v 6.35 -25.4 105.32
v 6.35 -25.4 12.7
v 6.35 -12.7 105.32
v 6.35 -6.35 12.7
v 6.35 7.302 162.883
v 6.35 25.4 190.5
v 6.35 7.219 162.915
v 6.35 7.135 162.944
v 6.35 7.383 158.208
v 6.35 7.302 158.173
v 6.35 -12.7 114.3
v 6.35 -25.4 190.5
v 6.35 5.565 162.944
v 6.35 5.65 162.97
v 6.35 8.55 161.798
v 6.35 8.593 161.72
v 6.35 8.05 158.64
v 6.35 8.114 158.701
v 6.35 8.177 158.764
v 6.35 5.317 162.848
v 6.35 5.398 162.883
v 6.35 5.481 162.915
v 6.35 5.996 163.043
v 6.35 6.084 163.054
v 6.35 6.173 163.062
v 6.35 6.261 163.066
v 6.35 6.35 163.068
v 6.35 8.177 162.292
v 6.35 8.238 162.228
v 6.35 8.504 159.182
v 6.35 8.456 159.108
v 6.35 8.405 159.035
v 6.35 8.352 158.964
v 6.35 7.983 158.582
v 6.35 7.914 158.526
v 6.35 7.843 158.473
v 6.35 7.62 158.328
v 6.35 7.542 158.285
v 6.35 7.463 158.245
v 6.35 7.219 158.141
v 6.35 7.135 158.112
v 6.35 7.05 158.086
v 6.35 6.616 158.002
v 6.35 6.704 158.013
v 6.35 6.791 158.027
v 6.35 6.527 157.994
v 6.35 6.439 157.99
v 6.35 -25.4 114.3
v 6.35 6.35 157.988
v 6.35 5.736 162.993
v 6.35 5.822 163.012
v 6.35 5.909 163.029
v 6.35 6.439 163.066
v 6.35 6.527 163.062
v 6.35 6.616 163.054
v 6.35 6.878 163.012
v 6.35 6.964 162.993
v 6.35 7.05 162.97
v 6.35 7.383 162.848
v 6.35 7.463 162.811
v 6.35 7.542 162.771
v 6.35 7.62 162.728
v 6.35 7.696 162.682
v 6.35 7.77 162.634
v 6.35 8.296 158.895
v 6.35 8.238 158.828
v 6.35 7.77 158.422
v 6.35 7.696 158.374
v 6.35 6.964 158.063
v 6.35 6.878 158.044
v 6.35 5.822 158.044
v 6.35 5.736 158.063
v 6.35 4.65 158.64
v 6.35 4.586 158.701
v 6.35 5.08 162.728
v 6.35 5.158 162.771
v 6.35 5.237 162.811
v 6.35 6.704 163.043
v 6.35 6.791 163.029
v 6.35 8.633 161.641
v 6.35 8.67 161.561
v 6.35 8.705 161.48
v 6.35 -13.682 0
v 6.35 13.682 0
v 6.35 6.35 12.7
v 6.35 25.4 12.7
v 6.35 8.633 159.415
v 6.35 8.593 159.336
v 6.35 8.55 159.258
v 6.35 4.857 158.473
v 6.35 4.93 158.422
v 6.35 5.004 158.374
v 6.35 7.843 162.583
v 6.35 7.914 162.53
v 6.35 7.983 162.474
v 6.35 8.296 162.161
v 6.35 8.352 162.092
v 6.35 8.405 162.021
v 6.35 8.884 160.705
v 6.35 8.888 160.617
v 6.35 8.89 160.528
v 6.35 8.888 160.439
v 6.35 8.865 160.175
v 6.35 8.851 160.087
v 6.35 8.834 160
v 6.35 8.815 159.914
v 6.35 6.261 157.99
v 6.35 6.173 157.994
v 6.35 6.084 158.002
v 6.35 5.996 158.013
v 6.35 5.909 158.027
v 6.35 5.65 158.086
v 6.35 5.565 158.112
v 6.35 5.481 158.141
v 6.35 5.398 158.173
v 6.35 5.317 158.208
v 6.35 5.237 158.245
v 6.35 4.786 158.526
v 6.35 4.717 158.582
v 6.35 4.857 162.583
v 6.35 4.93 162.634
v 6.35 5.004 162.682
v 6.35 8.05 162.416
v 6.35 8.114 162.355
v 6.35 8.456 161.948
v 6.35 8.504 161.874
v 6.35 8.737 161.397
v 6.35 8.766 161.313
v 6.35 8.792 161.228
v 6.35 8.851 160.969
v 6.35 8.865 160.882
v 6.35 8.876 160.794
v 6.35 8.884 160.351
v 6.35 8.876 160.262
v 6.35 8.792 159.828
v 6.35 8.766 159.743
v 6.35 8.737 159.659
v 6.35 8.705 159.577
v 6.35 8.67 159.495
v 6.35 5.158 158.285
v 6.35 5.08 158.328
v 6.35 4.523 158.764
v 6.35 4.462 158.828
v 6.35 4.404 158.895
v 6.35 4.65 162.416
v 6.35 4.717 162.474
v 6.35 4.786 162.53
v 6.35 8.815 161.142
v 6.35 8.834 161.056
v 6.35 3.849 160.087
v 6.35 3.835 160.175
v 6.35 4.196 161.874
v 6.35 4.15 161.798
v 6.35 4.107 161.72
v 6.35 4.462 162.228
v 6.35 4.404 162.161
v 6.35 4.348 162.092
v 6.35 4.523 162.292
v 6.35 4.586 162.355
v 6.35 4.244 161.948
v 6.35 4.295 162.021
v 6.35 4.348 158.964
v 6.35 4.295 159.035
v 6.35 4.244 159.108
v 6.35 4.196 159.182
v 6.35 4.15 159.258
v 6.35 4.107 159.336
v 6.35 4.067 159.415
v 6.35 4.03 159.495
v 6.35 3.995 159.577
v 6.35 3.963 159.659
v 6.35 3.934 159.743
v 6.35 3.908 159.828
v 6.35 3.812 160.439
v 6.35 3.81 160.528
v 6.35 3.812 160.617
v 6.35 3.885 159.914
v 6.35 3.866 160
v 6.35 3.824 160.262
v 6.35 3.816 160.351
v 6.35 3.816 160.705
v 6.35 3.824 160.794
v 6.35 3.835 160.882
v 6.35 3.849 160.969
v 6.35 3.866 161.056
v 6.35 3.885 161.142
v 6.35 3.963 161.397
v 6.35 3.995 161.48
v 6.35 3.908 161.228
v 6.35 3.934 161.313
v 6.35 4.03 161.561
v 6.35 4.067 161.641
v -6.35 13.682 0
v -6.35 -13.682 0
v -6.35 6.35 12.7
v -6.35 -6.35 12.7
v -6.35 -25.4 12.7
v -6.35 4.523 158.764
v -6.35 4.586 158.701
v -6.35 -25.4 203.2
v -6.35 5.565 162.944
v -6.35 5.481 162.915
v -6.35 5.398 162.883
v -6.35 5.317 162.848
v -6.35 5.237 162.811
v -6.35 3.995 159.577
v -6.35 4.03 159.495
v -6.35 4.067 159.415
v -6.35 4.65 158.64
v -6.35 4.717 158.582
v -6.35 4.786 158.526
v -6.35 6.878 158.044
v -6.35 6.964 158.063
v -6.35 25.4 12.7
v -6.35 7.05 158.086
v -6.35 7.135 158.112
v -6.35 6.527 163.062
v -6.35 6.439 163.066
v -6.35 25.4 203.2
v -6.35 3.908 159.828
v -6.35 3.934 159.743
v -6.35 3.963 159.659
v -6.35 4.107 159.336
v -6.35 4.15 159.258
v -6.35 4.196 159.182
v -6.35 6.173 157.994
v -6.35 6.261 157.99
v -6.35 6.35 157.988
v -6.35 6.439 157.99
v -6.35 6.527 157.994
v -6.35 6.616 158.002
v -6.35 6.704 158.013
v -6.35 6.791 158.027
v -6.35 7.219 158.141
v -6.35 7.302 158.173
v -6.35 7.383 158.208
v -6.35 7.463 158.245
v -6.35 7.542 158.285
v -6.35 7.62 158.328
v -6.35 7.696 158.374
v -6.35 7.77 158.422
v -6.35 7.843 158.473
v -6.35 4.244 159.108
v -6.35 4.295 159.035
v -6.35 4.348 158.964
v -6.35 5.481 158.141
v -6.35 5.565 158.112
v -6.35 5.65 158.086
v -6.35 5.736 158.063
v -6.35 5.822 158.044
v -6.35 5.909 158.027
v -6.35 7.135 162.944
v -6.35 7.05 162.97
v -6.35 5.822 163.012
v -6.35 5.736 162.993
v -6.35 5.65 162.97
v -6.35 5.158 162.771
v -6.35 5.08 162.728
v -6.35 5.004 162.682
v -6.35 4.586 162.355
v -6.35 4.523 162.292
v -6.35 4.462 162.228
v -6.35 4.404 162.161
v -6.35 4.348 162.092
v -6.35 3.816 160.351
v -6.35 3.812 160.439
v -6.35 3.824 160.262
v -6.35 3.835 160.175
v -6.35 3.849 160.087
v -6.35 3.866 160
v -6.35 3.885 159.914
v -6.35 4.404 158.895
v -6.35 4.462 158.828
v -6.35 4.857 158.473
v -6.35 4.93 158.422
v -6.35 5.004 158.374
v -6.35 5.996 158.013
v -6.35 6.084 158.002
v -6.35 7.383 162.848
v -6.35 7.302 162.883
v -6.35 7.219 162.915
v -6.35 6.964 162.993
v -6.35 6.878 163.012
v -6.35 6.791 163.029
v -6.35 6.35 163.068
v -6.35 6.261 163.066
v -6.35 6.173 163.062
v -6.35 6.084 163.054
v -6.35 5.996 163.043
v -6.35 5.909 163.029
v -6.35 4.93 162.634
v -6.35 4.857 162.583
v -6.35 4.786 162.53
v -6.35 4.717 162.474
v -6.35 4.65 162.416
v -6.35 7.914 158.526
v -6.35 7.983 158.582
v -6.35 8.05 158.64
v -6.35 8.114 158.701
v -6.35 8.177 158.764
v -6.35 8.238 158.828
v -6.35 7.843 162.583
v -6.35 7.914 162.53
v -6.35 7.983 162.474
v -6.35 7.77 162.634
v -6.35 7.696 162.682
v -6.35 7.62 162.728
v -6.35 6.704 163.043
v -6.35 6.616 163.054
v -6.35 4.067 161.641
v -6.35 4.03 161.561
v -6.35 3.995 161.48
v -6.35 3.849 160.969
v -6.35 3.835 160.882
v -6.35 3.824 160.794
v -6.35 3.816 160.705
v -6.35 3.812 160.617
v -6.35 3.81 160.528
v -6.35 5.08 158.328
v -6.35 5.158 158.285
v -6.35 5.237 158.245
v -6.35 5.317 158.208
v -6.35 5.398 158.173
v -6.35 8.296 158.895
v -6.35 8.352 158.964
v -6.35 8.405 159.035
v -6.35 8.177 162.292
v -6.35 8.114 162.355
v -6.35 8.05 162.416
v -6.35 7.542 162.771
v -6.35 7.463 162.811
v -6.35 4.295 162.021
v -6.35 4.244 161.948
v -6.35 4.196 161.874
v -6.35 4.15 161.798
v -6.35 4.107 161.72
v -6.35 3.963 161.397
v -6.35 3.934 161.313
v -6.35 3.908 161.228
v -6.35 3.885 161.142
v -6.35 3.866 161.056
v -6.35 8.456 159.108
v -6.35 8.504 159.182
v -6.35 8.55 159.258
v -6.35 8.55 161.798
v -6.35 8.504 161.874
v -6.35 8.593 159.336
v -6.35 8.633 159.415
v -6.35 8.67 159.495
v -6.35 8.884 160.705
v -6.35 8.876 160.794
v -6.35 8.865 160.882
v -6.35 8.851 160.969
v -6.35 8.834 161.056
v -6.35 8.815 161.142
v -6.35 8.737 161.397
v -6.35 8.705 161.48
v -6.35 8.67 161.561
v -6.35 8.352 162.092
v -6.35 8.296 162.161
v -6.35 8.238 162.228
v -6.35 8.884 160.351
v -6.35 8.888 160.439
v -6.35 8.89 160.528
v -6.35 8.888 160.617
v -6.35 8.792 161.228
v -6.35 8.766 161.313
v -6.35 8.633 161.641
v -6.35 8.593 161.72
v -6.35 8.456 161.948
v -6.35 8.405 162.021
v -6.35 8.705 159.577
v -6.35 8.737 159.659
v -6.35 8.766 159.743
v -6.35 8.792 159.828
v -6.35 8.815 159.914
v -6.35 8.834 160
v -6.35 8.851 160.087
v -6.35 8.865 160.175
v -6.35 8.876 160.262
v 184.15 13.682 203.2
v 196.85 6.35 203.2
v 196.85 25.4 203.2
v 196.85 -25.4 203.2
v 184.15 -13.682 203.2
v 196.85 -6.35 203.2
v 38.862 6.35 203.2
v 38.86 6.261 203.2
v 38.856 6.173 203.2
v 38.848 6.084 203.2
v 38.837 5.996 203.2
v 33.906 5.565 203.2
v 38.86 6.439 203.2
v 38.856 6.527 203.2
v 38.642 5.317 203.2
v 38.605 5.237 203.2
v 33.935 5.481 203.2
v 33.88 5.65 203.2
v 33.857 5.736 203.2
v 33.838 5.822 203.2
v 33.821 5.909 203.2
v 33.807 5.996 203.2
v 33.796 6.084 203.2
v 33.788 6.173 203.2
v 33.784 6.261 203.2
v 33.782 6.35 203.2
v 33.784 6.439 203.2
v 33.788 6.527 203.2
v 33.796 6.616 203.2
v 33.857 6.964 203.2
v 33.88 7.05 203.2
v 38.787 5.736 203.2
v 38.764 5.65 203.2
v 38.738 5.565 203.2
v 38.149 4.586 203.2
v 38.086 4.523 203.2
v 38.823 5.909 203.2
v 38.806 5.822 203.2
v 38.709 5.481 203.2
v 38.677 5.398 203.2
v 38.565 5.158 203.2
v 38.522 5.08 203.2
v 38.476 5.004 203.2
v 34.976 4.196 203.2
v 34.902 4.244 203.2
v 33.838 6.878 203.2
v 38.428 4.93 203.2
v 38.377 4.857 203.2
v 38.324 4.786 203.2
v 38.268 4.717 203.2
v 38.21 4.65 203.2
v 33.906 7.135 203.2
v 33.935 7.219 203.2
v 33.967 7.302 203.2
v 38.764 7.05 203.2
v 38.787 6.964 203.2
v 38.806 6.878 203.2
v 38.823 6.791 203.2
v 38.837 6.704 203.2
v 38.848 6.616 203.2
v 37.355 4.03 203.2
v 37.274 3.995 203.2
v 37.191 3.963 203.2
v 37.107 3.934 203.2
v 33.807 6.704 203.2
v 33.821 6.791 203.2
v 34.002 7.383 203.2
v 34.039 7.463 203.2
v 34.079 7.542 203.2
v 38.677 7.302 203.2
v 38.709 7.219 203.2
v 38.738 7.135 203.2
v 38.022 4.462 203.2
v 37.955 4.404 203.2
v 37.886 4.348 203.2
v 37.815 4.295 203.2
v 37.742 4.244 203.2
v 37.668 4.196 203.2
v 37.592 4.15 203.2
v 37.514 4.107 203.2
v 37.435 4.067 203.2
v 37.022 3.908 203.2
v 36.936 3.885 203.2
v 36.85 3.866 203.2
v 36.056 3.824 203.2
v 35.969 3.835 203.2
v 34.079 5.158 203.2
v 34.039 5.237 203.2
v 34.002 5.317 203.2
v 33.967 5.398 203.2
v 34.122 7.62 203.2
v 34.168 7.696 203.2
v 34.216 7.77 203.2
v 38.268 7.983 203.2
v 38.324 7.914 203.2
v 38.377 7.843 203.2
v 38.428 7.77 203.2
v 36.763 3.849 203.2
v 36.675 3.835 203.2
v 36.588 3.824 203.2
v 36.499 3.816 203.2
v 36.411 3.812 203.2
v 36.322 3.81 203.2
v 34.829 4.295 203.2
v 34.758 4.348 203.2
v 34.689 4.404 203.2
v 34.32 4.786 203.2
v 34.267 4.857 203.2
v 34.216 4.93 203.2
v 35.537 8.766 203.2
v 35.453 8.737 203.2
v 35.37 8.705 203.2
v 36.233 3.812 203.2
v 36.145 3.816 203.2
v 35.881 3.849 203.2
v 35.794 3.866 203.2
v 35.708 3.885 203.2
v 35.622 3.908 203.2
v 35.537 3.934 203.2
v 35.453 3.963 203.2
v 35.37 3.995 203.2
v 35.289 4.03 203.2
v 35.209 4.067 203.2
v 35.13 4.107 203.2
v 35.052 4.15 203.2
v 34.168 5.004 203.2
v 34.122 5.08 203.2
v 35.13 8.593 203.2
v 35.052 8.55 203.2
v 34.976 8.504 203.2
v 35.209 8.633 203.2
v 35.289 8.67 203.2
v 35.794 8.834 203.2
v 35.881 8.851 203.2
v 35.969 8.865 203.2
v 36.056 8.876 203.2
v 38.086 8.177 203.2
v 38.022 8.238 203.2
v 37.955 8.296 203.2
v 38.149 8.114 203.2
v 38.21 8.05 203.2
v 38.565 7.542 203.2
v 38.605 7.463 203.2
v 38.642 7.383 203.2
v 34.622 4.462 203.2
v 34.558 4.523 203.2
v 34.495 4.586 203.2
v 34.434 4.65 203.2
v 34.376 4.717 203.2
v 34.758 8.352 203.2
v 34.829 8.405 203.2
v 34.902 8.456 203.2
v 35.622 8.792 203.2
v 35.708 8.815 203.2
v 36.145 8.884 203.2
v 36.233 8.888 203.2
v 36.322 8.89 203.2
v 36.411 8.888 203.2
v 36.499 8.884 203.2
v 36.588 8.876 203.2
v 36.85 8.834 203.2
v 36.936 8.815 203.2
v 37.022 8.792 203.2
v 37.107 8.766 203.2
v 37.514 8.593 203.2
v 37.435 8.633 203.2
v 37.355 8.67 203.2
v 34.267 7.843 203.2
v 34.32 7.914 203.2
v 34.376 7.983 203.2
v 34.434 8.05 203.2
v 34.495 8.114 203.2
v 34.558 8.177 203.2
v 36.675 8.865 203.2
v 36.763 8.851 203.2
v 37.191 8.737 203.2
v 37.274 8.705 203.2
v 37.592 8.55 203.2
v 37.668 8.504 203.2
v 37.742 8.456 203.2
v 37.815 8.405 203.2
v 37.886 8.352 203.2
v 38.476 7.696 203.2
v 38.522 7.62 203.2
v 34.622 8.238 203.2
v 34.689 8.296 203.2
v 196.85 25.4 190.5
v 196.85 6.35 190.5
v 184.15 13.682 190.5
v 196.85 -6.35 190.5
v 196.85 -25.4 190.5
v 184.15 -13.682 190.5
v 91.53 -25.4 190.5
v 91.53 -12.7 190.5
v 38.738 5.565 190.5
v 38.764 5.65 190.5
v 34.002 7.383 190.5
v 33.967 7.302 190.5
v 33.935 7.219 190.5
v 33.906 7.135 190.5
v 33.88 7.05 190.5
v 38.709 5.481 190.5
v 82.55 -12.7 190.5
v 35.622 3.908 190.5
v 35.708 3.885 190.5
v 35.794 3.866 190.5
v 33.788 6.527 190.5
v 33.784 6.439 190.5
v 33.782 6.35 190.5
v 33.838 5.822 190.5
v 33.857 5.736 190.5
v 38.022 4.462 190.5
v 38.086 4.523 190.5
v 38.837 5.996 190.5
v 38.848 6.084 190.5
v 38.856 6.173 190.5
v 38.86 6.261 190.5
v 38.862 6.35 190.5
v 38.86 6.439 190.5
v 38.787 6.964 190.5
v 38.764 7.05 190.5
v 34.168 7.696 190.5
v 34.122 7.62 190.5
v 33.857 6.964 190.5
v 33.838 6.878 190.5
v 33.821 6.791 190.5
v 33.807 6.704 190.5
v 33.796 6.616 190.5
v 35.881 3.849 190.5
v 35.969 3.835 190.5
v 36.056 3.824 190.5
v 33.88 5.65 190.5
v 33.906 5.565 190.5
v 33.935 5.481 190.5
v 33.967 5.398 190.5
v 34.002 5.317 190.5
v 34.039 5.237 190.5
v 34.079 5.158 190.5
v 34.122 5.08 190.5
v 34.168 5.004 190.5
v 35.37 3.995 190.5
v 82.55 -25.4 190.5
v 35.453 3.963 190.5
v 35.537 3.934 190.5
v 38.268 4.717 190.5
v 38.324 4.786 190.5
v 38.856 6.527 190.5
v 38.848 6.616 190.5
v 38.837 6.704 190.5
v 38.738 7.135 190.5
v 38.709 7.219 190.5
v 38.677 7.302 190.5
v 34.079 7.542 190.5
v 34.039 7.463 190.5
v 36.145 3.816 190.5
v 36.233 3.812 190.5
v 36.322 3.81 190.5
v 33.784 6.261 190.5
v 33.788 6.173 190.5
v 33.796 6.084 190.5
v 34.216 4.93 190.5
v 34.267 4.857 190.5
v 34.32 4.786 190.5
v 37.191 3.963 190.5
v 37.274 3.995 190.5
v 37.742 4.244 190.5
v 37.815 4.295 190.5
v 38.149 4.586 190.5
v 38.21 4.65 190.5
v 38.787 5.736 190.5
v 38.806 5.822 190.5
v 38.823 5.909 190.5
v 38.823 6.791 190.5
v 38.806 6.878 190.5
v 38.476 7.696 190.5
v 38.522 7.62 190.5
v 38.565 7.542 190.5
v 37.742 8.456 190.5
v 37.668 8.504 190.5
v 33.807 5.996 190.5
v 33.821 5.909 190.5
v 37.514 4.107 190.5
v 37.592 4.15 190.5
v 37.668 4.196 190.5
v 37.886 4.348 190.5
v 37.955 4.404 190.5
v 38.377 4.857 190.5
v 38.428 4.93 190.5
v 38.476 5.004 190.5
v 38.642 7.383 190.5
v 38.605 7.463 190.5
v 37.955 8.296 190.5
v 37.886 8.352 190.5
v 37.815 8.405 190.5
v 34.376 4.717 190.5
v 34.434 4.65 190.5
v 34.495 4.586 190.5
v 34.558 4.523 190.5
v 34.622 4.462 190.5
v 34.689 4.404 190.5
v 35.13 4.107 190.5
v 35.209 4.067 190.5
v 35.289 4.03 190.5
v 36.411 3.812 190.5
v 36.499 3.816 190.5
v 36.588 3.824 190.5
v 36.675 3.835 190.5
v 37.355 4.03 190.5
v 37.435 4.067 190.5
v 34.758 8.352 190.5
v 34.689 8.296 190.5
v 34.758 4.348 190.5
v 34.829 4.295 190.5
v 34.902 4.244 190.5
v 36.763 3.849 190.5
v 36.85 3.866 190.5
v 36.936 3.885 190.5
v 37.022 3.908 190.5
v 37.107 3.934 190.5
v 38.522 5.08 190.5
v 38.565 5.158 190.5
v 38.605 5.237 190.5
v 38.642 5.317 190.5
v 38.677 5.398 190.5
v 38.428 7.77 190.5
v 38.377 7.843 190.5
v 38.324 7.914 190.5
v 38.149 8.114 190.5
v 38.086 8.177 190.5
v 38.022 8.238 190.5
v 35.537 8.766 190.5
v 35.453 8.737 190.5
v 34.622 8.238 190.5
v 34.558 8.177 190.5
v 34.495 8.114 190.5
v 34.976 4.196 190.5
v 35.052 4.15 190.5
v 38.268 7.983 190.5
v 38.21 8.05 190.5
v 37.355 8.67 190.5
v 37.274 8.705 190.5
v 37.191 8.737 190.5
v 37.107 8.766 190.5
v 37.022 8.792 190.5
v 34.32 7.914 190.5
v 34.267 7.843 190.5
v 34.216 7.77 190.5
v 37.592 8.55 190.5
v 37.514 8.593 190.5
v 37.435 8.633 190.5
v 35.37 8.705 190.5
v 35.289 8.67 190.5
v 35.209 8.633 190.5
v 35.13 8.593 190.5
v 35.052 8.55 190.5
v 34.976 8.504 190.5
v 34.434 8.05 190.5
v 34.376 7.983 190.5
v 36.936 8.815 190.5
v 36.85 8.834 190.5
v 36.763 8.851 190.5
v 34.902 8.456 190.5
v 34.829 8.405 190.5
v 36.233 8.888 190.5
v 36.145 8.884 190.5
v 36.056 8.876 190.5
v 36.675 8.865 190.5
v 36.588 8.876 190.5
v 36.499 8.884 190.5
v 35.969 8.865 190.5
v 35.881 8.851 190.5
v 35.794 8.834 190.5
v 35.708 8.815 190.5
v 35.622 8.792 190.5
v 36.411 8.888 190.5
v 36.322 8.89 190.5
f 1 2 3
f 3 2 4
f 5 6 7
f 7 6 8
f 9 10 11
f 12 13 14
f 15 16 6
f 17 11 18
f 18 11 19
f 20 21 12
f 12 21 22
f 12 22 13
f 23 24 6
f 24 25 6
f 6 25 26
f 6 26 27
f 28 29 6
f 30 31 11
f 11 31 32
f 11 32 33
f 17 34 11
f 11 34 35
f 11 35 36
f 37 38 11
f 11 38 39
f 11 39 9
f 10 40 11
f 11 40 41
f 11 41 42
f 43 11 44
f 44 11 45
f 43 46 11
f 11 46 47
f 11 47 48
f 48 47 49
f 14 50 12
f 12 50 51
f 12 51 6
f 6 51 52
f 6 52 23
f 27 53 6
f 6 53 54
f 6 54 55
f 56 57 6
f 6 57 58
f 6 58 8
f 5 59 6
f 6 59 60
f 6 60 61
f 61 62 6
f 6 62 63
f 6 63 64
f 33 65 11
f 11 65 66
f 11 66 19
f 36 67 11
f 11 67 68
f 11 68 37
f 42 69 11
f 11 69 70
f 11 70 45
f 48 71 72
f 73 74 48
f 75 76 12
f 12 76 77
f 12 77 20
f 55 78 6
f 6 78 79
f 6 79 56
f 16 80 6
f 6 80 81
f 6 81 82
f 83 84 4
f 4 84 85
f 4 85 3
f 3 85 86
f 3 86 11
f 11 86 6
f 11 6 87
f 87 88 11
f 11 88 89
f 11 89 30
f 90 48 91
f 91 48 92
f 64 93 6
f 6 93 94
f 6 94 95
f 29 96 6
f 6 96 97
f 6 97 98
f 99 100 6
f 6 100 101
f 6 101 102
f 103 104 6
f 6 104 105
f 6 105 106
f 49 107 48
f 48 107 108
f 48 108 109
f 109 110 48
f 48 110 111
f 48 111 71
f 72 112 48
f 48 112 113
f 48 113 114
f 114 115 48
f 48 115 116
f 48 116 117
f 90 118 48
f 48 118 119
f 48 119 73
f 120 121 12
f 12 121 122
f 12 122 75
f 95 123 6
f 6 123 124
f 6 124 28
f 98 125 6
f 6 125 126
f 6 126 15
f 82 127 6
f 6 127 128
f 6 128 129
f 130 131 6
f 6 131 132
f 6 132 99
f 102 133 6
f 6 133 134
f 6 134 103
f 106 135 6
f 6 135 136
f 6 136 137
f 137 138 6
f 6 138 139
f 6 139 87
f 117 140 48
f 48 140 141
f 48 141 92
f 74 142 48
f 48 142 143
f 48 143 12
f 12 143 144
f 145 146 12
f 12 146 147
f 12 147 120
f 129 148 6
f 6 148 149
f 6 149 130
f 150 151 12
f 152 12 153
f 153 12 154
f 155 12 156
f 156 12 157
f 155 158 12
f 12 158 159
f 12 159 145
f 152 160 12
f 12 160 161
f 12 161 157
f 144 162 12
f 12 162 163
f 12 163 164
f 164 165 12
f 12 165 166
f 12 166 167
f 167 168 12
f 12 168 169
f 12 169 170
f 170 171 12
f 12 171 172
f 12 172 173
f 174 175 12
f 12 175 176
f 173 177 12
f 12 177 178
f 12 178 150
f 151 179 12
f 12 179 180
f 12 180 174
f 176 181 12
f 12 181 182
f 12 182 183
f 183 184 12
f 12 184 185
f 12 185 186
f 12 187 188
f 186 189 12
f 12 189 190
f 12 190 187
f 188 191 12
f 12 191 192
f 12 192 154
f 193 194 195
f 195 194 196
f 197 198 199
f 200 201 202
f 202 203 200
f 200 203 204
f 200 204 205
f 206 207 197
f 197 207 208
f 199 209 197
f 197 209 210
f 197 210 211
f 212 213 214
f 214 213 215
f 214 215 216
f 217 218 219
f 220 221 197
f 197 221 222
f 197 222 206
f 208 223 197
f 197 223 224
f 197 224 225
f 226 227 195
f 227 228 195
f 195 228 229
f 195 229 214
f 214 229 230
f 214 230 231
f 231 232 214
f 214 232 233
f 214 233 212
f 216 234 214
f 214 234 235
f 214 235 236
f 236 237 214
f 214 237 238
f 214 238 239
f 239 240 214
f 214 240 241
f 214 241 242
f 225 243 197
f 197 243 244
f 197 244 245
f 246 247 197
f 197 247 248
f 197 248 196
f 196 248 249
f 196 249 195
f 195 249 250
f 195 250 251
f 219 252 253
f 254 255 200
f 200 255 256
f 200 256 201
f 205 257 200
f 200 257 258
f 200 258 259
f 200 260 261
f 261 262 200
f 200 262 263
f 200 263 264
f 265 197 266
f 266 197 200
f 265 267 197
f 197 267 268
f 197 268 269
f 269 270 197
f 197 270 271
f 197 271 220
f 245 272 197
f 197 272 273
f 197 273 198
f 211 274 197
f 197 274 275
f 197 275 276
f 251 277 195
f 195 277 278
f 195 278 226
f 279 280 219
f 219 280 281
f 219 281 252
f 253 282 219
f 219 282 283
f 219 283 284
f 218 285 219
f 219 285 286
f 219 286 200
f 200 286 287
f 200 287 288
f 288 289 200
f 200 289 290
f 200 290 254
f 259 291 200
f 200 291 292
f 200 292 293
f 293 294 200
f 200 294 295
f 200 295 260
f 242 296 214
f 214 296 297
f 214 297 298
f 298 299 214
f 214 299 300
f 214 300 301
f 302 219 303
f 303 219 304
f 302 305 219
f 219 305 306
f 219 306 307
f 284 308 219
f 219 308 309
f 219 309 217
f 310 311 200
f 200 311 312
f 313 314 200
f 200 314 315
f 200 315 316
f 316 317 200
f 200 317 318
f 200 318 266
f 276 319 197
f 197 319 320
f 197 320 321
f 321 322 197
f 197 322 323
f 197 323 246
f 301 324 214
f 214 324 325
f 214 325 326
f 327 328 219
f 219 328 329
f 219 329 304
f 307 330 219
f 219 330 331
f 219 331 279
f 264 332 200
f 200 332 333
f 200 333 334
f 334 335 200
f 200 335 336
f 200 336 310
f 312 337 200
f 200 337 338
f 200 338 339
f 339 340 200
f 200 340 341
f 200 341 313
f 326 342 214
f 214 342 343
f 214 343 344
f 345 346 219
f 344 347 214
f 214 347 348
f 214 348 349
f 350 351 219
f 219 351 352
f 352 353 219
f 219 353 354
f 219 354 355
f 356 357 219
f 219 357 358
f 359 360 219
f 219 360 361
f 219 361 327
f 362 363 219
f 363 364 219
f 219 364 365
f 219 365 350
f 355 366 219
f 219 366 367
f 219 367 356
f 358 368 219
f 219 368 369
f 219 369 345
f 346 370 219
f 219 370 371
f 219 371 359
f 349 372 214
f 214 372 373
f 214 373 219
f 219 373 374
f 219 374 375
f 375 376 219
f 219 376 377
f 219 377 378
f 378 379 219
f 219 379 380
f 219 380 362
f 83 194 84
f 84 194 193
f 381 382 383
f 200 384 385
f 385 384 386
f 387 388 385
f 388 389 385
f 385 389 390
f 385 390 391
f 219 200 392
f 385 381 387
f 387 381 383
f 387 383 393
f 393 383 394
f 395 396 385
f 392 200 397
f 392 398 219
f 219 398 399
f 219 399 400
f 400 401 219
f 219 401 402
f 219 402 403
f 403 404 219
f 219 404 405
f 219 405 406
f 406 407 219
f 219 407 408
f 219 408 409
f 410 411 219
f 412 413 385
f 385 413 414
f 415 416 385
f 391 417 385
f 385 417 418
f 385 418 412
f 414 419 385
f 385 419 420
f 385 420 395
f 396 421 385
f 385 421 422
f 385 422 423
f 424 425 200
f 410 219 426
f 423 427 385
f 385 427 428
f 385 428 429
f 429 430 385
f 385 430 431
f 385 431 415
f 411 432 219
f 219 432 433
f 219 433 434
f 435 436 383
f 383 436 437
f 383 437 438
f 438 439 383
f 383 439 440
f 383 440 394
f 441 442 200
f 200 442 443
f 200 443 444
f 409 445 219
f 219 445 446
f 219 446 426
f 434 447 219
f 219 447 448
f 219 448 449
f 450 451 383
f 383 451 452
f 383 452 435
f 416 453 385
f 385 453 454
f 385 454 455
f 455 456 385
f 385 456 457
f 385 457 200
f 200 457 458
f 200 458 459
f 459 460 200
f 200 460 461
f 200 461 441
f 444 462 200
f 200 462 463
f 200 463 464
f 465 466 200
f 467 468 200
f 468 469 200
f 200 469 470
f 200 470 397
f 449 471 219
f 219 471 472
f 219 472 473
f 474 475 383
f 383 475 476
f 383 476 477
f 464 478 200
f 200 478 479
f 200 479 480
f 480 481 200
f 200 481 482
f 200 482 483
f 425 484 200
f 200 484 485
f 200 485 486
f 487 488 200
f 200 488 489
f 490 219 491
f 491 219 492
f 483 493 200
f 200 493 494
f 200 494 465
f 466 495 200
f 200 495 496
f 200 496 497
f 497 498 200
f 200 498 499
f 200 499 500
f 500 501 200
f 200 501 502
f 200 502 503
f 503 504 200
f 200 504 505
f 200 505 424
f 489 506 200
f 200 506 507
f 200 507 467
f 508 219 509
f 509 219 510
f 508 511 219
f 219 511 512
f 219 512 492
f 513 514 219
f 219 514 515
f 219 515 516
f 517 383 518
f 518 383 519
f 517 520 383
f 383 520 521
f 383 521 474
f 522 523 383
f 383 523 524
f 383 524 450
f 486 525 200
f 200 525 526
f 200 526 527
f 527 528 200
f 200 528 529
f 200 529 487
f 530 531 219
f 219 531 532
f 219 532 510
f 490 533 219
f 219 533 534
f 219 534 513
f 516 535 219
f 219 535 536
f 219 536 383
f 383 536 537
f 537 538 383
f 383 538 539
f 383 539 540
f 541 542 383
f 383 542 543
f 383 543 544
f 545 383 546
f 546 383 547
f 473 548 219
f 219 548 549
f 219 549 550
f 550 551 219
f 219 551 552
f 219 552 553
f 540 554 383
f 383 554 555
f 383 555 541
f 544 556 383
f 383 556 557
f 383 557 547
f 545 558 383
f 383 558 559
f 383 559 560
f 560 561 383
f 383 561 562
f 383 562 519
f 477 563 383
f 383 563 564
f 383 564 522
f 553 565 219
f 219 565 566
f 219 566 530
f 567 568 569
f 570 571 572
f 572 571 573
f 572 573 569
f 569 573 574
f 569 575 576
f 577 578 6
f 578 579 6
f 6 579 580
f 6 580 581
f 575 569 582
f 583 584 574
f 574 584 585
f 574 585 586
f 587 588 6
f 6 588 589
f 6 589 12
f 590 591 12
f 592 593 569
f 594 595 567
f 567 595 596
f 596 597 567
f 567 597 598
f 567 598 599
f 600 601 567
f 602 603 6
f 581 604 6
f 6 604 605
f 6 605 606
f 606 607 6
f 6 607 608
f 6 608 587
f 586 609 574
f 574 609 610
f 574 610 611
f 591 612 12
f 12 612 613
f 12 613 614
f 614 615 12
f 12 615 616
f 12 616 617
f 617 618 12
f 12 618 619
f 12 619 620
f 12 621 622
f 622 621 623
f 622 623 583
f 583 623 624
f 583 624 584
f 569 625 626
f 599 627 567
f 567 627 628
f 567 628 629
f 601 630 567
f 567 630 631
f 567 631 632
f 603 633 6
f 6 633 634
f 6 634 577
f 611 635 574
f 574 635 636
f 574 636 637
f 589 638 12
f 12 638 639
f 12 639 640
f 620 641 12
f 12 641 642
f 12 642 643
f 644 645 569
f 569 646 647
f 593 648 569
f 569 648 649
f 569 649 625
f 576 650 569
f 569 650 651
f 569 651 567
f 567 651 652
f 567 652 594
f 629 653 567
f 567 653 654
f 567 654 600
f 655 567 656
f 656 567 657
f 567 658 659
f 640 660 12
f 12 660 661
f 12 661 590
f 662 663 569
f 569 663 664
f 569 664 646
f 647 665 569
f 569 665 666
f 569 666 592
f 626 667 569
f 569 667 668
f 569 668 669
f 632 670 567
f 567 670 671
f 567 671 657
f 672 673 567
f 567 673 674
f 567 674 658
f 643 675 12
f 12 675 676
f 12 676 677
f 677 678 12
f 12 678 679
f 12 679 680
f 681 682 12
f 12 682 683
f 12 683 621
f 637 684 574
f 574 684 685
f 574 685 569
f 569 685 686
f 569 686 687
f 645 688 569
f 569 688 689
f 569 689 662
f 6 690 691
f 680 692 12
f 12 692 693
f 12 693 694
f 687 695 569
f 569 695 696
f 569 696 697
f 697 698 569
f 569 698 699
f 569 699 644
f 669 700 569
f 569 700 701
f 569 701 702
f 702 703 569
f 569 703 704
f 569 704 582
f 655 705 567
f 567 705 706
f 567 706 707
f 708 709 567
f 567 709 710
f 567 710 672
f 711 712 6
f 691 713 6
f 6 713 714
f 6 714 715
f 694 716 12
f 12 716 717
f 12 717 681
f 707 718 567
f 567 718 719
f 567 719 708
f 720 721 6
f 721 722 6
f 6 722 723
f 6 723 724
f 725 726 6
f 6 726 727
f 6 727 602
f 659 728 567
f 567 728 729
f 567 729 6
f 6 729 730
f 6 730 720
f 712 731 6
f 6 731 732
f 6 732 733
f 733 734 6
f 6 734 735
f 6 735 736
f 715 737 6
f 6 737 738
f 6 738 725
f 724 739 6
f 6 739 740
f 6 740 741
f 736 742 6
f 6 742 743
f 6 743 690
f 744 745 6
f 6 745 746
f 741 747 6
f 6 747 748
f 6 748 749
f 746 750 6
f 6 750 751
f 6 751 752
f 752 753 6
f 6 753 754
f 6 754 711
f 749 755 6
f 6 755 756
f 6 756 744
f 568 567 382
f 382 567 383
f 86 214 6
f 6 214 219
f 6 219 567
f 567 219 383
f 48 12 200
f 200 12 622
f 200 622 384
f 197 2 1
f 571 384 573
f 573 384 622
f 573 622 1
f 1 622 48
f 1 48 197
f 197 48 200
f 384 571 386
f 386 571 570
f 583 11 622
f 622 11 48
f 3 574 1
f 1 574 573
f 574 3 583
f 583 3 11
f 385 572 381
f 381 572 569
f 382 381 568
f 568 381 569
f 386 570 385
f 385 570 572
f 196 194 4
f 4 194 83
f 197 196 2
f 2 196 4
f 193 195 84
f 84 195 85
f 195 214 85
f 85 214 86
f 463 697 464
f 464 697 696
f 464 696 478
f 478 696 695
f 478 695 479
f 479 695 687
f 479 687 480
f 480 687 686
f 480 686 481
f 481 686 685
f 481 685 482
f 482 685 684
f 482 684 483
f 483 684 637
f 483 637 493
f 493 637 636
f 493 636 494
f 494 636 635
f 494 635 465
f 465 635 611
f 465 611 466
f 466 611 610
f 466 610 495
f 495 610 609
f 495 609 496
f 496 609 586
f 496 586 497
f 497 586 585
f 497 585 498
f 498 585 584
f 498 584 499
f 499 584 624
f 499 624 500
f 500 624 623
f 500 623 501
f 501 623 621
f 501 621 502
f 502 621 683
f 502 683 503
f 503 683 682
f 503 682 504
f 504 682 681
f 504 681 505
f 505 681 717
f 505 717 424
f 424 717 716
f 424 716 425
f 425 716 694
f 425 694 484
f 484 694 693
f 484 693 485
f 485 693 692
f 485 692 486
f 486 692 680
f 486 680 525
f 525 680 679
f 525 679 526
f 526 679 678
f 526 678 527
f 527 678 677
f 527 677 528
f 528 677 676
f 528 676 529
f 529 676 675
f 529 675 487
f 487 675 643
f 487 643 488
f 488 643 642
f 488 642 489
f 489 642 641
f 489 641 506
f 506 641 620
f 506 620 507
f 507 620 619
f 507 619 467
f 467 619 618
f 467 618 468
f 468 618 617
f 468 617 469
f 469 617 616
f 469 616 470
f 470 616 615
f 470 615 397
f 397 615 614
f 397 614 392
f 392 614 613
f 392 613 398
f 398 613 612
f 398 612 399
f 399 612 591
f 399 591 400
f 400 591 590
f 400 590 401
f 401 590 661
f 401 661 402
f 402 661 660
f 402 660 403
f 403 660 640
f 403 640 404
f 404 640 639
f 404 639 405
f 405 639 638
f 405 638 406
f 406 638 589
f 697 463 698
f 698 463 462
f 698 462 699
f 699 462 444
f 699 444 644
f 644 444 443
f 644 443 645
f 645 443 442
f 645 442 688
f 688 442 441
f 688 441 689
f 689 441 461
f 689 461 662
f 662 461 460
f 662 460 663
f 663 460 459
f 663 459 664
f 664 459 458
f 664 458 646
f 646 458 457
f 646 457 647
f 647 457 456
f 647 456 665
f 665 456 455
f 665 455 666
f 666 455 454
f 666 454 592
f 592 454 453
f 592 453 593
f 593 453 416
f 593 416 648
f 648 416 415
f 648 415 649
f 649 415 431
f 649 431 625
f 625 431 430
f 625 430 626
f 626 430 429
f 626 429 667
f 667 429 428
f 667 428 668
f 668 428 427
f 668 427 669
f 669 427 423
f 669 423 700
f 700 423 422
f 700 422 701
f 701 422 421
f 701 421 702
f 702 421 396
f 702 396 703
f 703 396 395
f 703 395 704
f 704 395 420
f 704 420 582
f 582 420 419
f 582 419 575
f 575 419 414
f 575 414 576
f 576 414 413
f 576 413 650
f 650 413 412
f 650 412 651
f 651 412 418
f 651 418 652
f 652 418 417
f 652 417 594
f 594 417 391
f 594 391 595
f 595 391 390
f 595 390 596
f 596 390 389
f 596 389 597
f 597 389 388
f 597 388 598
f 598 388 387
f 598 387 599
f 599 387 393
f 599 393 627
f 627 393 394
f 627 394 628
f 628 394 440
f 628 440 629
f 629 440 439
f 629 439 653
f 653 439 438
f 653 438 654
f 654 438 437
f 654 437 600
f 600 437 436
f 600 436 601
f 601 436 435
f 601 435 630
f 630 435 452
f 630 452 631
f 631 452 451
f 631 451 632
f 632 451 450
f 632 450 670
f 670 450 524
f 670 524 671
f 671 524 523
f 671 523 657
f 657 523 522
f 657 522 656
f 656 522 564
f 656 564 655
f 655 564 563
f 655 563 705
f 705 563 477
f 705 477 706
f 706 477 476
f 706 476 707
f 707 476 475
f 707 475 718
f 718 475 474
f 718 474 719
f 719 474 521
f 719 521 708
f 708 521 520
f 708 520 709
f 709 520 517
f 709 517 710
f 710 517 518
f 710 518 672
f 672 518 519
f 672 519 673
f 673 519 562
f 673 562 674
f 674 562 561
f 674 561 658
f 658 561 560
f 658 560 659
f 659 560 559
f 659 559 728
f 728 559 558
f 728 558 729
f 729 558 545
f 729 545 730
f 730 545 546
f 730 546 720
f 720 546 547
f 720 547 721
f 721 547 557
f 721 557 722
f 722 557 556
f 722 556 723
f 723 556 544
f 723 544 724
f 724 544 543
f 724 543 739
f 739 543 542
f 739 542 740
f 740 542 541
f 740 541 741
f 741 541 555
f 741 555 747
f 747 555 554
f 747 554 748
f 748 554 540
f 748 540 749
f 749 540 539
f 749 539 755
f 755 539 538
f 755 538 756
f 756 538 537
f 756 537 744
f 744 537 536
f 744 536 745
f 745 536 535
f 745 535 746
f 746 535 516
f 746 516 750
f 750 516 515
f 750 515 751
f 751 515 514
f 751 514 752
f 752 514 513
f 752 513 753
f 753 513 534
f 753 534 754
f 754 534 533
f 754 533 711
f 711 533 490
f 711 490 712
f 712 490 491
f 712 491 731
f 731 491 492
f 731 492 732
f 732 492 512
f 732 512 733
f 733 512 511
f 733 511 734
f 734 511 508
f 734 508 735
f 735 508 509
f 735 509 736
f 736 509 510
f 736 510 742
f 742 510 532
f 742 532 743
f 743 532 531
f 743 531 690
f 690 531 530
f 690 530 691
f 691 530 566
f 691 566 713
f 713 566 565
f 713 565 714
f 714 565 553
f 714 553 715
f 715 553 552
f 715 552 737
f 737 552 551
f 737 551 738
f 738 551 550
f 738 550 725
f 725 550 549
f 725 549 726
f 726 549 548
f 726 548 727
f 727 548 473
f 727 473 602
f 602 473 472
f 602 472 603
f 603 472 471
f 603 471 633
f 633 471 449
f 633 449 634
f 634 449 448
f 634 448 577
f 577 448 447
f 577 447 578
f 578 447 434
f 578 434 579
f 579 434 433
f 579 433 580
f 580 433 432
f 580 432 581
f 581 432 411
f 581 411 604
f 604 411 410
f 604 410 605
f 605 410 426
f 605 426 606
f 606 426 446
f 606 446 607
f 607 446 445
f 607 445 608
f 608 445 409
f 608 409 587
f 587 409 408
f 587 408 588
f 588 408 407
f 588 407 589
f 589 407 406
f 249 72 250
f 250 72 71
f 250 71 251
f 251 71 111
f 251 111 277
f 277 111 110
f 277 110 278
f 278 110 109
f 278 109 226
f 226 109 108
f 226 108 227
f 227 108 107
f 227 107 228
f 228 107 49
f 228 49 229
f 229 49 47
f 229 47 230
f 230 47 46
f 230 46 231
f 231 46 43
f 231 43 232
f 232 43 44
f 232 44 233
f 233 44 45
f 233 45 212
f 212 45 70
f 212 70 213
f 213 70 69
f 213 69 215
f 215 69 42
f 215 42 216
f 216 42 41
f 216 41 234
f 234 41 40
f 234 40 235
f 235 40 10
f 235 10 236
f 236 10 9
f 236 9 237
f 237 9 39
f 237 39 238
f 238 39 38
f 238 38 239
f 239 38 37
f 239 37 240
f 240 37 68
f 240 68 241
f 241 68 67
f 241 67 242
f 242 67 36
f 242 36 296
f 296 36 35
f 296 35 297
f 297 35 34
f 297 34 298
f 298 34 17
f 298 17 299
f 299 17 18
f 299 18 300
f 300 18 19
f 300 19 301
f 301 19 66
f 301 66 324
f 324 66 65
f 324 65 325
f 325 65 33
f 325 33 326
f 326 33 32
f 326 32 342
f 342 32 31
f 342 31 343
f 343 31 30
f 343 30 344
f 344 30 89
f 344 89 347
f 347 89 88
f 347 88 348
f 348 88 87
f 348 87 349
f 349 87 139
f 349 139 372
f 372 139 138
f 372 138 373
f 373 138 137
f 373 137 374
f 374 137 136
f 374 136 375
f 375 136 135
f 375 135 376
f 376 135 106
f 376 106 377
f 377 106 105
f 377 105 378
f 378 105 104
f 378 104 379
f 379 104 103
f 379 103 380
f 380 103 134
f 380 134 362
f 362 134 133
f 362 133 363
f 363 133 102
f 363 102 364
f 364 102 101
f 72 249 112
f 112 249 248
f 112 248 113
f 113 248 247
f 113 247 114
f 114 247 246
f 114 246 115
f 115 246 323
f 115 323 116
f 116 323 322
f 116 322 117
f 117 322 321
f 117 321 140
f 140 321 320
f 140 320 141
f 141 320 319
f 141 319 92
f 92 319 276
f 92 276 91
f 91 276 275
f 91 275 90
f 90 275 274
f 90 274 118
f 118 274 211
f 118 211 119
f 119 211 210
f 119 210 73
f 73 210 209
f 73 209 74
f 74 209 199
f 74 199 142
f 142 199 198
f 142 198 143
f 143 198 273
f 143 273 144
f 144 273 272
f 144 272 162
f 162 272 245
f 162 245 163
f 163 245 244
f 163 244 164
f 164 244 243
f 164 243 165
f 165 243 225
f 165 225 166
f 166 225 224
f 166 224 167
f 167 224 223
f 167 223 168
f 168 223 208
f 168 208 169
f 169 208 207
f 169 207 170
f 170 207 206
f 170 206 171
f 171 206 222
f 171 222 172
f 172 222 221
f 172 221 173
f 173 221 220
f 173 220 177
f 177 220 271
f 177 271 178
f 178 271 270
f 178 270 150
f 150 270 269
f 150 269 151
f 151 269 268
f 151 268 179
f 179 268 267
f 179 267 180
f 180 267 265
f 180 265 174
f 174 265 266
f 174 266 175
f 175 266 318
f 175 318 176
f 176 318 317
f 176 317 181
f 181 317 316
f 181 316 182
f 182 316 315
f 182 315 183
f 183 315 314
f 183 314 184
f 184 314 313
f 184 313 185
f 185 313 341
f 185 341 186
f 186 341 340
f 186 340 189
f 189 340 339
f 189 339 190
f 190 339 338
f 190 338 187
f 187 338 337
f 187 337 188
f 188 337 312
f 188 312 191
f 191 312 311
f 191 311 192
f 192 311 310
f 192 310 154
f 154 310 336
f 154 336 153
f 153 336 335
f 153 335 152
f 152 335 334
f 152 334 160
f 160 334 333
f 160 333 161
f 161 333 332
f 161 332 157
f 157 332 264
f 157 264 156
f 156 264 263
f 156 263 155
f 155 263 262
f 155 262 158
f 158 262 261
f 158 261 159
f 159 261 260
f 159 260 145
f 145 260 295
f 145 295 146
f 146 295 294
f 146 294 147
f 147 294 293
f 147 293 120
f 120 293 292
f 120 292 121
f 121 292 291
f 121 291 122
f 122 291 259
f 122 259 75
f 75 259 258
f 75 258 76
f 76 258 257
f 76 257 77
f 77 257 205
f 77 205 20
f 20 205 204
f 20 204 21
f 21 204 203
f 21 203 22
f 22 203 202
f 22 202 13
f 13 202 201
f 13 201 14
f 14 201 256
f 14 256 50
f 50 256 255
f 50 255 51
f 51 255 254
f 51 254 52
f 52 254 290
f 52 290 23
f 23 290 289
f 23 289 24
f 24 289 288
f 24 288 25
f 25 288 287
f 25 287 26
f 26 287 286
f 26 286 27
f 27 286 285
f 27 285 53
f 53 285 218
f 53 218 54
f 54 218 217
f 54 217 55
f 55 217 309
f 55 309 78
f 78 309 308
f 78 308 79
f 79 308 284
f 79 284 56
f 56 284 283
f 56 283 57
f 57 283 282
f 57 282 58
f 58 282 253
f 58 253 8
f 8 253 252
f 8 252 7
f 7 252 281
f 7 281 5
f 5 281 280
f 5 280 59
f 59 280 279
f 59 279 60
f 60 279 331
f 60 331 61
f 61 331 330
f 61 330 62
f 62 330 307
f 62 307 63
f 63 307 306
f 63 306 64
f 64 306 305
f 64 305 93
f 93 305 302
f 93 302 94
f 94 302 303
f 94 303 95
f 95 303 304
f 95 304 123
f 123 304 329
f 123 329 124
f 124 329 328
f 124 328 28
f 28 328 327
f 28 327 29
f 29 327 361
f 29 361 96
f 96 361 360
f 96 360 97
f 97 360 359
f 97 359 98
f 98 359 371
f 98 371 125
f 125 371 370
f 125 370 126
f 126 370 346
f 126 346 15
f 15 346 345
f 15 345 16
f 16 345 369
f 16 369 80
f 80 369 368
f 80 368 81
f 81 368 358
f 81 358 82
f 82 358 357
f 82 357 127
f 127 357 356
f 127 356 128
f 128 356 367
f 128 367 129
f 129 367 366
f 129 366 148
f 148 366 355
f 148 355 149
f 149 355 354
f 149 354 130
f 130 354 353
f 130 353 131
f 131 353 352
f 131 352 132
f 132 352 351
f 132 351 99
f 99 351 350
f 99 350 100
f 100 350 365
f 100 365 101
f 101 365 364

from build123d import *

# Parameters (mm, degrees)
SKETCH1_W           = 12.7
SKETCH1_H           = 50.8
BOSS_EXTRUDE1_DEPTH = 203.2
SKETCH2_W           = 12.7
SKETCH2_H           = 50.8
BOSS_EXTRUDE2_DEPTH = 190.5
BOSS_EXTRUDE5_DEPTH = 12.7
CUT_EXTRUDE2_DEPTH  = 285.051619429
CUT_EXTRUDE3_DEPTH  = 280.688487428
SKETCH9_R           = 2.54
CUT_EXTRUDE4_DEPTH  = 276.109673585
SKETCH10_R          = 2.54
CUT_EXTRUDE5_DEPTH  = 280.688487428


with BuildPart() as part:
    # Sketch1 → Boss-Extrude1 (new body)
    with BuildSketch(Plane.XY):
        Rectangle(SKETCH1_W, SKETCH1_H)
    extrude(amount=BOSS_EXTRUDE1_DEPTH)

    # Sketch2 → Boss-Extrude2 (add)
    with BuildSketch(Plane(origin=(6.35, 0, 0), x_dir=(0, 0, -1), z_dir=(1, 0, 0))):
        with Locations((-196.85, 0)):
            Rectangle(SKETCH2_W, SKETCH2_H)
    extrude(amount=BOSS_EXTRUDE2_DEPTH)

    # Sketch6 → Boss-Extrude5 (add)
    with BuildSketch(Plane.XZ.offset(25.4)):
        Polygon((6.35, 114.3), (6.35, 105.319743879), (91.530256121, 190.5), (82.55, 190.5), align=None)
    extrude(amount=-BOSS_EXTRUDE5_DEPTH)

    # Sketch7 → Cut-Extrude2 (cut, through all)
    with BuildSketch(Plane.XY.offset(203.2)):
        Polygon((196.85, 3.666174209), (196.85, 6.35), (184.15, 13.682348419), (184.15, 0), (196.85, 0), align=None)
        Polygon((196.85, 0), (184.15, 0), (184.15, -3.666174209), (184.15, -13.682348419), (196.85, -6.35), align=None)
    extrude(amount=-CUT_EXTRUDE2_DEPTH, mode=Mode.SUBTRACT)

    # Sketch8 → Cut-Extrude3 (cut, through all)
    with BuildSketch(Plane(origin=(6.35, 0, 0), x_dir=(0, 0, -1), z_dir=(1, 0, 0))):
        Polygon((-12.7, 6.35), (0, 13.682348419), (0, 25.4), (-12.7, 25.4), align=None)
        Polygon((0, -25.4), (0, -13.682348419), (-12.7, -6.35), (-12.7, -25.4), align=None)
    extrude(amount=-CUT_EXTRUDE3_DEPTH, mode=Mode.SUBTRACT)

    # Sketch9 → Cut-Extrude4 (cut, through all)
    with BuildSketch(Plane(origin=(0, 0, 190.5), x_dir=(-1, 0, 0), z_dir=(0, 0, -1))):
        with Locations((-36.322, 6.35)):
            Circle(SKETCH9_R)
    extrude(amount=-CUT_EXTRUDE4_DEPTH, mode=Mode.SUBTRACT)

    # Sketch10 → Cut-Extrude5 (cut, through all)
    with BuildSketch(Plane(origin=(6.35, 0, 0), x_dir=(0, 0, -1), z_dir=(1, 0, 0))):
        with Locations(Location((-160.528, 6.35, 0), (0, 0, 90))):
            Circle(SKETCH10_R)
    extrude(amount=-CUT_EXTRUDE5_DEPTH, mode=Mode.SUBTRACT)


solid = part.part
